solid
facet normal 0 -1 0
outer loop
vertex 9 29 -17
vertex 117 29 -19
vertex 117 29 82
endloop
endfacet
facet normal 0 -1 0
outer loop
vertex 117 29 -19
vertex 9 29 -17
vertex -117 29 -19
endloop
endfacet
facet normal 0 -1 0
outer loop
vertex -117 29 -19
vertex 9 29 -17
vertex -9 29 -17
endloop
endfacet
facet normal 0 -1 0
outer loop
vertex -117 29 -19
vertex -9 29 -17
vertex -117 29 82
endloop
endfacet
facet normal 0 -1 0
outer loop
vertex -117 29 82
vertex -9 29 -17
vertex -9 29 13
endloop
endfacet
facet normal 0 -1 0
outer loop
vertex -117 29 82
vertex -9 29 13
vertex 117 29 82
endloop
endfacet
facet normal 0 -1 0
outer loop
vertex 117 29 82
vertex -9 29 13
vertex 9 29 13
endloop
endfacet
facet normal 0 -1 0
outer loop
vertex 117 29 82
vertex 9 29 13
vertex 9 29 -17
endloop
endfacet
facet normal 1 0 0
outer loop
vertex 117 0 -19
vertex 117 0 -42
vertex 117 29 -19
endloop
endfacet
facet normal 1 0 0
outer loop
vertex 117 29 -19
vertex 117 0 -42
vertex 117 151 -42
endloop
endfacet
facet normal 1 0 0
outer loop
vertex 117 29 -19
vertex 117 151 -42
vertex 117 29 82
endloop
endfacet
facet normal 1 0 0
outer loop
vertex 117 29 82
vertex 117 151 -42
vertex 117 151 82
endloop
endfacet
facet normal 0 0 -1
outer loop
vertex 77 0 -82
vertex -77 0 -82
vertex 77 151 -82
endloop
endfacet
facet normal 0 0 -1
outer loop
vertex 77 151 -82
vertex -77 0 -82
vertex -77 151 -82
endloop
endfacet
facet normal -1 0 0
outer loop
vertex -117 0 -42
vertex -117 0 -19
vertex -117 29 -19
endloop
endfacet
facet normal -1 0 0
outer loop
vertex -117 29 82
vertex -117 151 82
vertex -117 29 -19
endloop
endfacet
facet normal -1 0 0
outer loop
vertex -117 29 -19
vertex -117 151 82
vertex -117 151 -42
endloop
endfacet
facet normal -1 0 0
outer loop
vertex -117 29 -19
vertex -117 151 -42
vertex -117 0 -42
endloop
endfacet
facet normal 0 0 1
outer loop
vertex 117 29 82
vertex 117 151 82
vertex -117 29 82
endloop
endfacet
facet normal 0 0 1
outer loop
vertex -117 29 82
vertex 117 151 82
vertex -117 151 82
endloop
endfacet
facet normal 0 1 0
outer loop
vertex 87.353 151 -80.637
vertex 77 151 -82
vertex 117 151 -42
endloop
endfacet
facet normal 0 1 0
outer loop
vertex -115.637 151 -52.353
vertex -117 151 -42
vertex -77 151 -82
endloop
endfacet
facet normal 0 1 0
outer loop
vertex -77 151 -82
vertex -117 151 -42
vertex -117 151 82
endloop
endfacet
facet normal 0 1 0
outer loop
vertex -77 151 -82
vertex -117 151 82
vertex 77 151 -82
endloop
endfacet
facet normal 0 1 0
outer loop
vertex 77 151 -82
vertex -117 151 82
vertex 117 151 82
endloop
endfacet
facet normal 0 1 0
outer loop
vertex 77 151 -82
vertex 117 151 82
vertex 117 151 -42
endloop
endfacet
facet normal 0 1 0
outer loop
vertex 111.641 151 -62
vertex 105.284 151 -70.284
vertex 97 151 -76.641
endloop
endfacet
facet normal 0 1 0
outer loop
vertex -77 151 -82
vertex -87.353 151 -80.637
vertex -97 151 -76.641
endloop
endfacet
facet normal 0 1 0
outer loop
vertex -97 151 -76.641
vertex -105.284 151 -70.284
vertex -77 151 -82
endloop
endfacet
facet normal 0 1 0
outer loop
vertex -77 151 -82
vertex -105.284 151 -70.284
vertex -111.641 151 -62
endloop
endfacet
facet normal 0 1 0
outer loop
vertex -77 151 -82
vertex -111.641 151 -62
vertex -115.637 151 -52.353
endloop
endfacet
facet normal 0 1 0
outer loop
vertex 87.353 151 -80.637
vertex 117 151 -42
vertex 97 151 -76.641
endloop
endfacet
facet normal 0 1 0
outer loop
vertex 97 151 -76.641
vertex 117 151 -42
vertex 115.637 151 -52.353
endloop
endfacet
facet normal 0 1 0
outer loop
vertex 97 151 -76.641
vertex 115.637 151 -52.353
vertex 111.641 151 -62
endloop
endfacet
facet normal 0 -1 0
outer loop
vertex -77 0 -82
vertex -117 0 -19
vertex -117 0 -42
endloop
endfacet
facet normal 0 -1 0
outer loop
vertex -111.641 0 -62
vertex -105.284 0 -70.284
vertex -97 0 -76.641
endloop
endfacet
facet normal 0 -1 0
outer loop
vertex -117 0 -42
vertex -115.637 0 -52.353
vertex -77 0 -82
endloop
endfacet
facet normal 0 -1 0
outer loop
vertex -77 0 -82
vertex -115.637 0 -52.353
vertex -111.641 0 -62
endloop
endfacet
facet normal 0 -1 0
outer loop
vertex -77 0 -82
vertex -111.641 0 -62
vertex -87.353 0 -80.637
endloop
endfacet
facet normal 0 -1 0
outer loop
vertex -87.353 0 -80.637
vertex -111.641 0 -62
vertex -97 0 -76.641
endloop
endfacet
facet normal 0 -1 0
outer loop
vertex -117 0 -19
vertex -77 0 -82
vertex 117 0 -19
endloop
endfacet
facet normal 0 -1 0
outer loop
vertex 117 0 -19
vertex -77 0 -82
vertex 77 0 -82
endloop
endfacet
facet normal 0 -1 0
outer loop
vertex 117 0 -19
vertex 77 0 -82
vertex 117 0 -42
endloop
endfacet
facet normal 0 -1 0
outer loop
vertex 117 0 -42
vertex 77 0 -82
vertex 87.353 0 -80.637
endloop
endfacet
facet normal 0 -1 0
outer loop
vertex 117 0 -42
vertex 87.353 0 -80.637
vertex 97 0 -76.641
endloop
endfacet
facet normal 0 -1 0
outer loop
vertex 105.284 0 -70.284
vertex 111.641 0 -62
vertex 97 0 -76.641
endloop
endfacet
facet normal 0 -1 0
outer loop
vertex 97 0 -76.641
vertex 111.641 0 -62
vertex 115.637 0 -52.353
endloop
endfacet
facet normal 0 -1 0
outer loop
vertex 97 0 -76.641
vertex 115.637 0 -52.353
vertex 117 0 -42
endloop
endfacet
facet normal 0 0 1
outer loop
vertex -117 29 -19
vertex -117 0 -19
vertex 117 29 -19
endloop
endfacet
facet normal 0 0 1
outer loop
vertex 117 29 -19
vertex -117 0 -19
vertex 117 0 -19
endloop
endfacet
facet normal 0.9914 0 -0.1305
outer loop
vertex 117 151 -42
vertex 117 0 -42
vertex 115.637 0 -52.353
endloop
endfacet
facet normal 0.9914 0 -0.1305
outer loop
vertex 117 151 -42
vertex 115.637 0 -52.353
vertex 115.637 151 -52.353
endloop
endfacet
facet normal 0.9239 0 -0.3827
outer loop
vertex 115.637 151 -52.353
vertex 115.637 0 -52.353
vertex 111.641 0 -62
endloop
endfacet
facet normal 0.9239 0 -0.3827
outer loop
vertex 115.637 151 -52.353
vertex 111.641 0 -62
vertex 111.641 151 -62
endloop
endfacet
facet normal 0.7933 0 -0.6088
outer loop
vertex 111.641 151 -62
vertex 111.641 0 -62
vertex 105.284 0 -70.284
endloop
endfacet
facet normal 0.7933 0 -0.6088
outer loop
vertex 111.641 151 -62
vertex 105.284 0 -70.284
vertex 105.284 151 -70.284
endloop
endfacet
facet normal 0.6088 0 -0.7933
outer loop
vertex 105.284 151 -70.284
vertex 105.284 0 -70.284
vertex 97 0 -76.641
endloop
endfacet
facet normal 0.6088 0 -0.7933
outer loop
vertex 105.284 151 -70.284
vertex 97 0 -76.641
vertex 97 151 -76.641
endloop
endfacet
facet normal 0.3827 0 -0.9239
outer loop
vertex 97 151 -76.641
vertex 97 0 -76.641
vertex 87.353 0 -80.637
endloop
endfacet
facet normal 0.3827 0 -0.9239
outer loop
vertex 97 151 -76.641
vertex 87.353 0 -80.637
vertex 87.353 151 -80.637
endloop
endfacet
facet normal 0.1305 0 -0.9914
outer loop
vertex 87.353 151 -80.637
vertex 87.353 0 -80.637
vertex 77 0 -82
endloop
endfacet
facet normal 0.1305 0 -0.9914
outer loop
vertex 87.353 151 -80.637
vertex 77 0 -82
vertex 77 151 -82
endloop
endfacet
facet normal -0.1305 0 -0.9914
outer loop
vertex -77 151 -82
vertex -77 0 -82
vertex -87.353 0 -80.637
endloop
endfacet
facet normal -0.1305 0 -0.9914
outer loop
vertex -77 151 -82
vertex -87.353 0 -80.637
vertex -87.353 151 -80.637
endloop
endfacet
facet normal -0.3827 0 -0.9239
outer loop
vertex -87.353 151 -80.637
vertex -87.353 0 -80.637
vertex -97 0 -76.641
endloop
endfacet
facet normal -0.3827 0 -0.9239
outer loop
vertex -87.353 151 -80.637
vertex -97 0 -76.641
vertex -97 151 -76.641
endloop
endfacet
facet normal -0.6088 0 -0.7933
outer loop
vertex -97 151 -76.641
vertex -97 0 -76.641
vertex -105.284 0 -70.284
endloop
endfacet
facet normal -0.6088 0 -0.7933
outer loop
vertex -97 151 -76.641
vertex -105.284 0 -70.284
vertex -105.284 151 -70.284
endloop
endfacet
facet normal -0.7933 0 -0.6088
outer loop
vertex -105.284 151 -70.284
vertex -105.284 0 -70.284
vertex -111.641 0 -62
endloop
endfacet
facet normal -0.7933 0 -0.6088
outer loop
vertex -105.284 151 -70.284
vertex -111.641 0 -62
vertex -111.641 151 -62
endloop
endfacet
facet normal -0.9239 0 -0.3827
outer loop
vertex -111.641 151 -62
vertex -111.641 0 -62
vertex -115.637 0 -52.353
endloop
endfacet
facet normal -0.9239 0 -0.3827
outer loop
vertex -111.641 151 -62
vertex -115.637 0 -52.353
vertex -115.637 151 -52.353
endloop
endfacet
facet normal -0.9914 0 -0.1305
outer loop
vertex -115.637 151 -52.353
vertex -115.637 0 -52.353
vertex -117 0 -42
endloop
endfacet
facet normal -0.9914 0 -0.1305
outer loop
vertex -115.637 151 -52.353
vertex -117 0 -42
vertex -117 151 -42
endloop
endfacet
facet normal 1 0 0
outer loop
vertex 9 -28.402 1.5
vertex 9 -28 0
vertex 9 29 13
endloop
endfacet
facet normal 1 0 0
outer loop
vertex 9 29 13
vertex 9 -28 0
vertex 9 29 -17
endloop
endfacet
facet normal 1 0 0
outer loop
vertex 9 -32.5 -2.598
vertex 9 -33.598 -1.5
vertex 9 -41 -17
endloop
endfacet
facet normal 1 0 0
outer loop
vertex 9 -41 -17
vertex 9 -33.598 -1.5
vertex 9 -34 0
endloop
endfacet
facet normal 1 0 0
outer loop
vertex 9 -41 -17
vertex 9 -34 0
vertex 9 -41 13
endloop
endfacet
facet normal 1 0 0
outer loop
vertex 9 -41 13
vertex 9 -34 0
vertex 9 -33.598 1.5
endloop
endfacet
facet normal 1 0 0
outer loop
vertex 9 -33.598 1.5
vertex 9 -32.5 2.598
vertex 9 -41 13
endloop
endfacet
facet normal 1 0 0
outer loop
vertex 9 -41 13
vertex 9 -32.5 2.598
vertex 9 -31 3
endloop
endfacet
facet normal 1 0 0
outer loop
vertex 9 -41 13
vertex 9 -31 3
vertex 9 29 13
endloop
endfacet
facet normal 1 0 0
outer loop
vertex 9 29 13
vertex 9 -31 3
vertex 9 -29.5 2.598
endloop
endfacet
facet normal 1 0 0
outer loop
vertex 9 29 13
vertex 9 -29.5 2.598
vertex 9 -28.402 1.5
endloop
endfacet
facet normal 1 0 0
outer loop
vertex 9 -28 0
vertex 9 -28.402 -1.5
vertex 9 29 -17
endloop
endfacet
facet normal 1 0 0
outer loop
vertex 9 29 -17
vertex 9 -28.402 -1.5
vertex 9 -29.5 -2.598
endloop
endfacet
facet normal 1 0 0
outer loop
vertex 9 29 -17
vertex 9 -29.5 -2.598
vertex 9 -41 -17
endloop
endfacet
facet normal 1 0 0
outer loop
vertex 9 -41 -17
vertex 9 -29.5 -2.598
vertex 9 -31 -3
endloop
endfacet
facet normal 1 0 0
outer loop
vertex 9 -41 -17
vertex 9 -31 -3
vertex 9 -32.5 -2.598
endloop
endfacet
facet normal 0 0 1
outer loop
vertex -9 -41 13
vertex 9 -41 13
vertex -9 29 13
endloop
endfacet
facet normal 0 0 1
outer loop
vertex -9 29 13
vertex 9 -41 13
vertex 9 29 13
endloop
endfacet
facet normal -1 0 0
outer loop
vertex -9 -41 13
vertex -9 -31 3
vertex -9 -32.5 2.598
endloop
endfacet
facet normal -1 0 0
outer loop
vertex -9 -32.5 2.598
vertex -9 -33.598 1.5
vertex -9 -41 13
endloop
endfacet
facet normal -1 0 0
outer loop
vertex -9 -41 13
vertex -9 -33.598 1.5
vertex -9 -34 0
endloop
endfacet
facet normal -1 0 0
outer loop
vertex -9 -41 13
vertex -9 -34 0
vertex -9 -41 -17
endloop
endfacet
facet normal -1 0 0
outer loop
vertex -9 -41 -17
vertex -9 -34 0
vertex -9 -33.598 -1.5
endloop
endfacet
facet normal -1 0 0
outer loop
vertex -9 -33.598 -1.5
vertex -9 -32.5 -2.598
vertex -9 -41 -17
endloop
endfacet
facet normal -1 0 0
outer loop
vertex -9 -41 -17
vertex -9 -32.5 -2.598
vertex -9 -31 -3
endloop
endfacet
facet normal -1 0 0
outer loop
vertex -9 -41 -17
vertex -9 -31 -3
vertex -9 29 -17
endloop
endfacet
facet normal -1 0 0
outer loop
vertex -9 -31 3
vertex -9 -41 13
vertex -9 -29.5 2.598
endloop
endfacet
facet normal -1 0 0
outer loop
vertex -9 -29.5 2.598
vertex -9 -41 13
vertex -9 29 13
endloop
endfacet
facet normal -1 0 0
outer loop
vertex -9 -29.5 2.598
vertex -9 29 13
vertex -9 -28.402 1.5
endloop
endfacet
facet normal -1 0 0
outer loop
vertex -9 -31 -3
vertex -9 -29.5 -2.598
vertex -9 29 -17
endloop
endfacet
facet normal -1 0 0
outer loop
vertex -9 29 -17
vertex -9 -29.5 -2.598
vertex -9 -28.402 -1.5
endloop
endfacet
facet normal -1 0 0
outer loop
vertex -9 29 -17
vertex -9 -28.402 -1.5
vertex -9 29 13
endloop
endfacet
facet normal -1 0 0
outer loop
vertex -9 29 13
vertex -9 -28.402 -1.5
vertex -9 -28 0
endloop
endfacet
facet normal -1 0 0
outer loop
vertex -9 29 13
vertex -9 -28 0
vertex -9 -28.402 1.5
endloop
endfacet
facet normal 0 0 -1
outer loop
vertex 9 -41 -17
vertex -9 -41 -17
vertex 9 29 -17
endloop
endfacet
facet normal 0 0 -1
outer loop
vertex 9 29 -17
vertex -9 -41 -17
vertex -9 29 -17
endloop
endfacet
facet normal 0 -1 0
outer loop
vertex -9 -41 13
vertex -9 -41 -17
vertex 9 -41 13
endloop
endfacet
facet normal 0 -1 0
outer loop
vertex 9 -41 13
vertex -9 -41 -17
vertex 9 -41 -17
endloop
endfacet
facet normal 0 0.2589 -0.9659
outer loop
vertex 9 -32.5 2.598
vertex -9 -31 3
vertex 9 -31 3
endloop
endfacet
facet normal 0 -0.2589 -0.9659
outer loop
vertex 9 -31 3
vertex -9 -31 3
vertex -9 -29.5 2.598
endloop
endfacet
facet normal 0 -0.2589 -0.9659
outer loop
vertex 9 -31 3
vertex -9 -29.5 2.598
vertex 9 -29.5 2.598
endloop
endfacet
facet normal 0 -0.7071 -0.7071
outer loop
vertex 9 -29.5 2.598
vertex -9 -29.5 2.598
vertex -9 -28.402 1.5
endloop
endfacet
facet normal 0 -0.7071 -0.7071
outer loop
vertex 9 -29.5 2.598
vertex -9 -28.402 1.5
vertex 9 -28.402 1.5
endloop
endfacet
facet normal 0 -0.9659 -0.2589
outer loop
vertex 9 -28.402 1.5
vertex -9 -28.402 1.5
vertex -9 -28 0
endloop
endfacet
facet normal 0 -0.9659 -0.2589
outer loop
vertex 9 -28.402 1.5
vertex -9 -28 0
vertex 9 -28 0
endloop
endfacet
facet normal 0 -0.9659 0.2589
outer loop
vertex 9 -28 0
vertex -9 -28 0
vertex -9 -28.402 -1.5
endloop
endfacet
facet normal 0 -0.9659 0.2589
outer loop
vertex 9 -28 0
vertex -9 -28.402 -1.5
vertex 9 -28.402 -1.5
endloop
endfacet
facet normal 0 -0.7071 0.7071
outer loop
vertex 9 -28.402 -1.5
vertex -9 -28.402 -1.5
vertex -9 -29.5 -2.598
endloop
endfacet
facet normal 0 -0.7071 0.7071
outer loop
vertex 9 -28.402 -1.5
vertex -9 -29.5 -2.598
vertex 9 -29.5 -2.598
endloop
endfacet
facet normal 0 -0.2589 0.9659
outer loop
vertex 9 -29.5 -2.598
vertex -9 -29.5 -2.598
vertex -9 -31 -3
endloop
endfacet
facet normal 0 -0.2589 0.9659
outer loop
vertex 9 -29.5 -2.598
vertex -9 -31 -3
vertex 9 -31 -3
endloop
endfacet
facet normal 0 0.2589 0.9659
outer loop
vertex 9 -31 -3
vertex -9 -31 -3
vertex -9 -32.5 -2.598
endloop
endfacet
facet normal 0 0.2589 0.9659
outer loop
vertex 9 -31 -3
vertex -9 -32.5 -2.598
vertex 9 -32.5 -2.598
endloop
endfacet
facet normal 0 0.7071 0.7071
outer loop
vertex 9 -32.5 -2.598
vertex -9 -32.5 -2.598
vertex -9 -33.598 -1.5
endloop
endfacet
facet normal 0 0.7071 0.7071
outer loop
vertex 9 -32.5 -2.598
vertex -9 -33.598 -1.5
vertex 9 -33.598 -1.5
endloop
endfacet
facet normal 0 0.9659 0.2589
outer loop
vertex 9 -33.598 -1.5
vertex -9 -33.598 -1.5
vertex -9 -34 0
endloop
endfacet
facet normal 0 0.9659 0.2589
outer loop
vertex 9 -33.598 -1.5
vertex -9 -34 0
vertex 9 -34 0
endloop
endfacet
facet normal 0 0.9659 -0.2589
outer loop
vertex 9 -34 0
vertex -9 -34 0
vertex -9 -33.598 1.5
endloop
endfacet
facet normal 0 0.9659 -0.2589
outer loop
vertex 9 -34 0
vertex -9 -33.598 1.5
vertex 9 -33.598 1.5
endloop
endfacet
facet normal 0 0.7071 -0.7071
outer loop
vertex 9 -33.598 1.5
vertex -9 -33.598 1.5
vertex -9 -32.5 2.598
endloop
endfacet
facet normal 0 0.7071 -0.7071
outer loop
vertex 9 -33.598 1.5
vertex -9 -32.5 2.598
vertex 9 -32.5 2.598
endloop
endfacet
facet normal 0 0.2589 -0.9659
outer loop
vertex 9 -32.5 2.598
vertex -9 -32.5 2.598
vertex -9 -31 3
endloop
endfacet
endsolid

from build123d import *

# Parameters (mm, degrees)
SKETCH1_W           = 234
SKETCH1_H           = 164
BOSS_EXTRUDE1_DEPTH = 151
SKETCH2_W           = 134.536158908
SKETCH2_H           = 46.032358143
CUT_EXTRUDE1_DEPTH  = 291.311901237
FILLET1_R           = 40
SKETCH3_W           = 18
SKETCH3_H           = 30
BOSS_EXTRUDE2_DEPTH = 70
SKETCH4_R           = 3
CUT_EXTRUDE2_DEPTH  = 214.07510413


with BuildPart() as part:
    # Sketch1 → Boss-Extrude1 (new body)
    with BuildSketch(Plane(origin=(0, 0, 0), x_dir=(1, 0, 0), z_dir=(0, 1, 0))):
        Rectangle(SKETCH1_W, SKETCH1_H)
    extrude(amount=BOSS_EXTRUDE1_DEPTH)

    # Sketch2 → Cut-Extrude1 (cut, through all)
    with BuildSketch(Plane.ZY.offset(117)):
        with Locations((48.268079454, 5.983820929)):
            Rectangle(SKETCH2_W, SKETCH2_H)
    extrude(amount=-CUT_EXTRUDE1_DEPTH, mode=Mode.SUBTRACT)

    # Fillet1
    fillet1_edges = [part.edges().sort_by_distance(p)[0] for p in [
        (-117, 75.5, -82),
        (117, 75.5, -82),
    ]]
    fillet(fillet1_edges, radius=FILLET1_R)

    # Sketch3 → Boss-Extrude2 (add)
    with BuildSketch(Plane.XZ.offset(-29)):
        with Locations((0, -2)):
            Rectangle(SKETCH3_W, SKETCH3_H)
    extrude(amount=BOSS_EXTRUDE2_DEPTH)

    # Sketch4 → Cut-Extrude2 (cut, through all)
    with BuildSketch(Plane.ZY.offset(9)):
        with Locations((0, -31)):
            Circle(SKETCH4_R)
    extrude(amount=-CUT_EXTRUDE2_DEPTH, mode=Mode.SUBTRACT)


solid = part.part
